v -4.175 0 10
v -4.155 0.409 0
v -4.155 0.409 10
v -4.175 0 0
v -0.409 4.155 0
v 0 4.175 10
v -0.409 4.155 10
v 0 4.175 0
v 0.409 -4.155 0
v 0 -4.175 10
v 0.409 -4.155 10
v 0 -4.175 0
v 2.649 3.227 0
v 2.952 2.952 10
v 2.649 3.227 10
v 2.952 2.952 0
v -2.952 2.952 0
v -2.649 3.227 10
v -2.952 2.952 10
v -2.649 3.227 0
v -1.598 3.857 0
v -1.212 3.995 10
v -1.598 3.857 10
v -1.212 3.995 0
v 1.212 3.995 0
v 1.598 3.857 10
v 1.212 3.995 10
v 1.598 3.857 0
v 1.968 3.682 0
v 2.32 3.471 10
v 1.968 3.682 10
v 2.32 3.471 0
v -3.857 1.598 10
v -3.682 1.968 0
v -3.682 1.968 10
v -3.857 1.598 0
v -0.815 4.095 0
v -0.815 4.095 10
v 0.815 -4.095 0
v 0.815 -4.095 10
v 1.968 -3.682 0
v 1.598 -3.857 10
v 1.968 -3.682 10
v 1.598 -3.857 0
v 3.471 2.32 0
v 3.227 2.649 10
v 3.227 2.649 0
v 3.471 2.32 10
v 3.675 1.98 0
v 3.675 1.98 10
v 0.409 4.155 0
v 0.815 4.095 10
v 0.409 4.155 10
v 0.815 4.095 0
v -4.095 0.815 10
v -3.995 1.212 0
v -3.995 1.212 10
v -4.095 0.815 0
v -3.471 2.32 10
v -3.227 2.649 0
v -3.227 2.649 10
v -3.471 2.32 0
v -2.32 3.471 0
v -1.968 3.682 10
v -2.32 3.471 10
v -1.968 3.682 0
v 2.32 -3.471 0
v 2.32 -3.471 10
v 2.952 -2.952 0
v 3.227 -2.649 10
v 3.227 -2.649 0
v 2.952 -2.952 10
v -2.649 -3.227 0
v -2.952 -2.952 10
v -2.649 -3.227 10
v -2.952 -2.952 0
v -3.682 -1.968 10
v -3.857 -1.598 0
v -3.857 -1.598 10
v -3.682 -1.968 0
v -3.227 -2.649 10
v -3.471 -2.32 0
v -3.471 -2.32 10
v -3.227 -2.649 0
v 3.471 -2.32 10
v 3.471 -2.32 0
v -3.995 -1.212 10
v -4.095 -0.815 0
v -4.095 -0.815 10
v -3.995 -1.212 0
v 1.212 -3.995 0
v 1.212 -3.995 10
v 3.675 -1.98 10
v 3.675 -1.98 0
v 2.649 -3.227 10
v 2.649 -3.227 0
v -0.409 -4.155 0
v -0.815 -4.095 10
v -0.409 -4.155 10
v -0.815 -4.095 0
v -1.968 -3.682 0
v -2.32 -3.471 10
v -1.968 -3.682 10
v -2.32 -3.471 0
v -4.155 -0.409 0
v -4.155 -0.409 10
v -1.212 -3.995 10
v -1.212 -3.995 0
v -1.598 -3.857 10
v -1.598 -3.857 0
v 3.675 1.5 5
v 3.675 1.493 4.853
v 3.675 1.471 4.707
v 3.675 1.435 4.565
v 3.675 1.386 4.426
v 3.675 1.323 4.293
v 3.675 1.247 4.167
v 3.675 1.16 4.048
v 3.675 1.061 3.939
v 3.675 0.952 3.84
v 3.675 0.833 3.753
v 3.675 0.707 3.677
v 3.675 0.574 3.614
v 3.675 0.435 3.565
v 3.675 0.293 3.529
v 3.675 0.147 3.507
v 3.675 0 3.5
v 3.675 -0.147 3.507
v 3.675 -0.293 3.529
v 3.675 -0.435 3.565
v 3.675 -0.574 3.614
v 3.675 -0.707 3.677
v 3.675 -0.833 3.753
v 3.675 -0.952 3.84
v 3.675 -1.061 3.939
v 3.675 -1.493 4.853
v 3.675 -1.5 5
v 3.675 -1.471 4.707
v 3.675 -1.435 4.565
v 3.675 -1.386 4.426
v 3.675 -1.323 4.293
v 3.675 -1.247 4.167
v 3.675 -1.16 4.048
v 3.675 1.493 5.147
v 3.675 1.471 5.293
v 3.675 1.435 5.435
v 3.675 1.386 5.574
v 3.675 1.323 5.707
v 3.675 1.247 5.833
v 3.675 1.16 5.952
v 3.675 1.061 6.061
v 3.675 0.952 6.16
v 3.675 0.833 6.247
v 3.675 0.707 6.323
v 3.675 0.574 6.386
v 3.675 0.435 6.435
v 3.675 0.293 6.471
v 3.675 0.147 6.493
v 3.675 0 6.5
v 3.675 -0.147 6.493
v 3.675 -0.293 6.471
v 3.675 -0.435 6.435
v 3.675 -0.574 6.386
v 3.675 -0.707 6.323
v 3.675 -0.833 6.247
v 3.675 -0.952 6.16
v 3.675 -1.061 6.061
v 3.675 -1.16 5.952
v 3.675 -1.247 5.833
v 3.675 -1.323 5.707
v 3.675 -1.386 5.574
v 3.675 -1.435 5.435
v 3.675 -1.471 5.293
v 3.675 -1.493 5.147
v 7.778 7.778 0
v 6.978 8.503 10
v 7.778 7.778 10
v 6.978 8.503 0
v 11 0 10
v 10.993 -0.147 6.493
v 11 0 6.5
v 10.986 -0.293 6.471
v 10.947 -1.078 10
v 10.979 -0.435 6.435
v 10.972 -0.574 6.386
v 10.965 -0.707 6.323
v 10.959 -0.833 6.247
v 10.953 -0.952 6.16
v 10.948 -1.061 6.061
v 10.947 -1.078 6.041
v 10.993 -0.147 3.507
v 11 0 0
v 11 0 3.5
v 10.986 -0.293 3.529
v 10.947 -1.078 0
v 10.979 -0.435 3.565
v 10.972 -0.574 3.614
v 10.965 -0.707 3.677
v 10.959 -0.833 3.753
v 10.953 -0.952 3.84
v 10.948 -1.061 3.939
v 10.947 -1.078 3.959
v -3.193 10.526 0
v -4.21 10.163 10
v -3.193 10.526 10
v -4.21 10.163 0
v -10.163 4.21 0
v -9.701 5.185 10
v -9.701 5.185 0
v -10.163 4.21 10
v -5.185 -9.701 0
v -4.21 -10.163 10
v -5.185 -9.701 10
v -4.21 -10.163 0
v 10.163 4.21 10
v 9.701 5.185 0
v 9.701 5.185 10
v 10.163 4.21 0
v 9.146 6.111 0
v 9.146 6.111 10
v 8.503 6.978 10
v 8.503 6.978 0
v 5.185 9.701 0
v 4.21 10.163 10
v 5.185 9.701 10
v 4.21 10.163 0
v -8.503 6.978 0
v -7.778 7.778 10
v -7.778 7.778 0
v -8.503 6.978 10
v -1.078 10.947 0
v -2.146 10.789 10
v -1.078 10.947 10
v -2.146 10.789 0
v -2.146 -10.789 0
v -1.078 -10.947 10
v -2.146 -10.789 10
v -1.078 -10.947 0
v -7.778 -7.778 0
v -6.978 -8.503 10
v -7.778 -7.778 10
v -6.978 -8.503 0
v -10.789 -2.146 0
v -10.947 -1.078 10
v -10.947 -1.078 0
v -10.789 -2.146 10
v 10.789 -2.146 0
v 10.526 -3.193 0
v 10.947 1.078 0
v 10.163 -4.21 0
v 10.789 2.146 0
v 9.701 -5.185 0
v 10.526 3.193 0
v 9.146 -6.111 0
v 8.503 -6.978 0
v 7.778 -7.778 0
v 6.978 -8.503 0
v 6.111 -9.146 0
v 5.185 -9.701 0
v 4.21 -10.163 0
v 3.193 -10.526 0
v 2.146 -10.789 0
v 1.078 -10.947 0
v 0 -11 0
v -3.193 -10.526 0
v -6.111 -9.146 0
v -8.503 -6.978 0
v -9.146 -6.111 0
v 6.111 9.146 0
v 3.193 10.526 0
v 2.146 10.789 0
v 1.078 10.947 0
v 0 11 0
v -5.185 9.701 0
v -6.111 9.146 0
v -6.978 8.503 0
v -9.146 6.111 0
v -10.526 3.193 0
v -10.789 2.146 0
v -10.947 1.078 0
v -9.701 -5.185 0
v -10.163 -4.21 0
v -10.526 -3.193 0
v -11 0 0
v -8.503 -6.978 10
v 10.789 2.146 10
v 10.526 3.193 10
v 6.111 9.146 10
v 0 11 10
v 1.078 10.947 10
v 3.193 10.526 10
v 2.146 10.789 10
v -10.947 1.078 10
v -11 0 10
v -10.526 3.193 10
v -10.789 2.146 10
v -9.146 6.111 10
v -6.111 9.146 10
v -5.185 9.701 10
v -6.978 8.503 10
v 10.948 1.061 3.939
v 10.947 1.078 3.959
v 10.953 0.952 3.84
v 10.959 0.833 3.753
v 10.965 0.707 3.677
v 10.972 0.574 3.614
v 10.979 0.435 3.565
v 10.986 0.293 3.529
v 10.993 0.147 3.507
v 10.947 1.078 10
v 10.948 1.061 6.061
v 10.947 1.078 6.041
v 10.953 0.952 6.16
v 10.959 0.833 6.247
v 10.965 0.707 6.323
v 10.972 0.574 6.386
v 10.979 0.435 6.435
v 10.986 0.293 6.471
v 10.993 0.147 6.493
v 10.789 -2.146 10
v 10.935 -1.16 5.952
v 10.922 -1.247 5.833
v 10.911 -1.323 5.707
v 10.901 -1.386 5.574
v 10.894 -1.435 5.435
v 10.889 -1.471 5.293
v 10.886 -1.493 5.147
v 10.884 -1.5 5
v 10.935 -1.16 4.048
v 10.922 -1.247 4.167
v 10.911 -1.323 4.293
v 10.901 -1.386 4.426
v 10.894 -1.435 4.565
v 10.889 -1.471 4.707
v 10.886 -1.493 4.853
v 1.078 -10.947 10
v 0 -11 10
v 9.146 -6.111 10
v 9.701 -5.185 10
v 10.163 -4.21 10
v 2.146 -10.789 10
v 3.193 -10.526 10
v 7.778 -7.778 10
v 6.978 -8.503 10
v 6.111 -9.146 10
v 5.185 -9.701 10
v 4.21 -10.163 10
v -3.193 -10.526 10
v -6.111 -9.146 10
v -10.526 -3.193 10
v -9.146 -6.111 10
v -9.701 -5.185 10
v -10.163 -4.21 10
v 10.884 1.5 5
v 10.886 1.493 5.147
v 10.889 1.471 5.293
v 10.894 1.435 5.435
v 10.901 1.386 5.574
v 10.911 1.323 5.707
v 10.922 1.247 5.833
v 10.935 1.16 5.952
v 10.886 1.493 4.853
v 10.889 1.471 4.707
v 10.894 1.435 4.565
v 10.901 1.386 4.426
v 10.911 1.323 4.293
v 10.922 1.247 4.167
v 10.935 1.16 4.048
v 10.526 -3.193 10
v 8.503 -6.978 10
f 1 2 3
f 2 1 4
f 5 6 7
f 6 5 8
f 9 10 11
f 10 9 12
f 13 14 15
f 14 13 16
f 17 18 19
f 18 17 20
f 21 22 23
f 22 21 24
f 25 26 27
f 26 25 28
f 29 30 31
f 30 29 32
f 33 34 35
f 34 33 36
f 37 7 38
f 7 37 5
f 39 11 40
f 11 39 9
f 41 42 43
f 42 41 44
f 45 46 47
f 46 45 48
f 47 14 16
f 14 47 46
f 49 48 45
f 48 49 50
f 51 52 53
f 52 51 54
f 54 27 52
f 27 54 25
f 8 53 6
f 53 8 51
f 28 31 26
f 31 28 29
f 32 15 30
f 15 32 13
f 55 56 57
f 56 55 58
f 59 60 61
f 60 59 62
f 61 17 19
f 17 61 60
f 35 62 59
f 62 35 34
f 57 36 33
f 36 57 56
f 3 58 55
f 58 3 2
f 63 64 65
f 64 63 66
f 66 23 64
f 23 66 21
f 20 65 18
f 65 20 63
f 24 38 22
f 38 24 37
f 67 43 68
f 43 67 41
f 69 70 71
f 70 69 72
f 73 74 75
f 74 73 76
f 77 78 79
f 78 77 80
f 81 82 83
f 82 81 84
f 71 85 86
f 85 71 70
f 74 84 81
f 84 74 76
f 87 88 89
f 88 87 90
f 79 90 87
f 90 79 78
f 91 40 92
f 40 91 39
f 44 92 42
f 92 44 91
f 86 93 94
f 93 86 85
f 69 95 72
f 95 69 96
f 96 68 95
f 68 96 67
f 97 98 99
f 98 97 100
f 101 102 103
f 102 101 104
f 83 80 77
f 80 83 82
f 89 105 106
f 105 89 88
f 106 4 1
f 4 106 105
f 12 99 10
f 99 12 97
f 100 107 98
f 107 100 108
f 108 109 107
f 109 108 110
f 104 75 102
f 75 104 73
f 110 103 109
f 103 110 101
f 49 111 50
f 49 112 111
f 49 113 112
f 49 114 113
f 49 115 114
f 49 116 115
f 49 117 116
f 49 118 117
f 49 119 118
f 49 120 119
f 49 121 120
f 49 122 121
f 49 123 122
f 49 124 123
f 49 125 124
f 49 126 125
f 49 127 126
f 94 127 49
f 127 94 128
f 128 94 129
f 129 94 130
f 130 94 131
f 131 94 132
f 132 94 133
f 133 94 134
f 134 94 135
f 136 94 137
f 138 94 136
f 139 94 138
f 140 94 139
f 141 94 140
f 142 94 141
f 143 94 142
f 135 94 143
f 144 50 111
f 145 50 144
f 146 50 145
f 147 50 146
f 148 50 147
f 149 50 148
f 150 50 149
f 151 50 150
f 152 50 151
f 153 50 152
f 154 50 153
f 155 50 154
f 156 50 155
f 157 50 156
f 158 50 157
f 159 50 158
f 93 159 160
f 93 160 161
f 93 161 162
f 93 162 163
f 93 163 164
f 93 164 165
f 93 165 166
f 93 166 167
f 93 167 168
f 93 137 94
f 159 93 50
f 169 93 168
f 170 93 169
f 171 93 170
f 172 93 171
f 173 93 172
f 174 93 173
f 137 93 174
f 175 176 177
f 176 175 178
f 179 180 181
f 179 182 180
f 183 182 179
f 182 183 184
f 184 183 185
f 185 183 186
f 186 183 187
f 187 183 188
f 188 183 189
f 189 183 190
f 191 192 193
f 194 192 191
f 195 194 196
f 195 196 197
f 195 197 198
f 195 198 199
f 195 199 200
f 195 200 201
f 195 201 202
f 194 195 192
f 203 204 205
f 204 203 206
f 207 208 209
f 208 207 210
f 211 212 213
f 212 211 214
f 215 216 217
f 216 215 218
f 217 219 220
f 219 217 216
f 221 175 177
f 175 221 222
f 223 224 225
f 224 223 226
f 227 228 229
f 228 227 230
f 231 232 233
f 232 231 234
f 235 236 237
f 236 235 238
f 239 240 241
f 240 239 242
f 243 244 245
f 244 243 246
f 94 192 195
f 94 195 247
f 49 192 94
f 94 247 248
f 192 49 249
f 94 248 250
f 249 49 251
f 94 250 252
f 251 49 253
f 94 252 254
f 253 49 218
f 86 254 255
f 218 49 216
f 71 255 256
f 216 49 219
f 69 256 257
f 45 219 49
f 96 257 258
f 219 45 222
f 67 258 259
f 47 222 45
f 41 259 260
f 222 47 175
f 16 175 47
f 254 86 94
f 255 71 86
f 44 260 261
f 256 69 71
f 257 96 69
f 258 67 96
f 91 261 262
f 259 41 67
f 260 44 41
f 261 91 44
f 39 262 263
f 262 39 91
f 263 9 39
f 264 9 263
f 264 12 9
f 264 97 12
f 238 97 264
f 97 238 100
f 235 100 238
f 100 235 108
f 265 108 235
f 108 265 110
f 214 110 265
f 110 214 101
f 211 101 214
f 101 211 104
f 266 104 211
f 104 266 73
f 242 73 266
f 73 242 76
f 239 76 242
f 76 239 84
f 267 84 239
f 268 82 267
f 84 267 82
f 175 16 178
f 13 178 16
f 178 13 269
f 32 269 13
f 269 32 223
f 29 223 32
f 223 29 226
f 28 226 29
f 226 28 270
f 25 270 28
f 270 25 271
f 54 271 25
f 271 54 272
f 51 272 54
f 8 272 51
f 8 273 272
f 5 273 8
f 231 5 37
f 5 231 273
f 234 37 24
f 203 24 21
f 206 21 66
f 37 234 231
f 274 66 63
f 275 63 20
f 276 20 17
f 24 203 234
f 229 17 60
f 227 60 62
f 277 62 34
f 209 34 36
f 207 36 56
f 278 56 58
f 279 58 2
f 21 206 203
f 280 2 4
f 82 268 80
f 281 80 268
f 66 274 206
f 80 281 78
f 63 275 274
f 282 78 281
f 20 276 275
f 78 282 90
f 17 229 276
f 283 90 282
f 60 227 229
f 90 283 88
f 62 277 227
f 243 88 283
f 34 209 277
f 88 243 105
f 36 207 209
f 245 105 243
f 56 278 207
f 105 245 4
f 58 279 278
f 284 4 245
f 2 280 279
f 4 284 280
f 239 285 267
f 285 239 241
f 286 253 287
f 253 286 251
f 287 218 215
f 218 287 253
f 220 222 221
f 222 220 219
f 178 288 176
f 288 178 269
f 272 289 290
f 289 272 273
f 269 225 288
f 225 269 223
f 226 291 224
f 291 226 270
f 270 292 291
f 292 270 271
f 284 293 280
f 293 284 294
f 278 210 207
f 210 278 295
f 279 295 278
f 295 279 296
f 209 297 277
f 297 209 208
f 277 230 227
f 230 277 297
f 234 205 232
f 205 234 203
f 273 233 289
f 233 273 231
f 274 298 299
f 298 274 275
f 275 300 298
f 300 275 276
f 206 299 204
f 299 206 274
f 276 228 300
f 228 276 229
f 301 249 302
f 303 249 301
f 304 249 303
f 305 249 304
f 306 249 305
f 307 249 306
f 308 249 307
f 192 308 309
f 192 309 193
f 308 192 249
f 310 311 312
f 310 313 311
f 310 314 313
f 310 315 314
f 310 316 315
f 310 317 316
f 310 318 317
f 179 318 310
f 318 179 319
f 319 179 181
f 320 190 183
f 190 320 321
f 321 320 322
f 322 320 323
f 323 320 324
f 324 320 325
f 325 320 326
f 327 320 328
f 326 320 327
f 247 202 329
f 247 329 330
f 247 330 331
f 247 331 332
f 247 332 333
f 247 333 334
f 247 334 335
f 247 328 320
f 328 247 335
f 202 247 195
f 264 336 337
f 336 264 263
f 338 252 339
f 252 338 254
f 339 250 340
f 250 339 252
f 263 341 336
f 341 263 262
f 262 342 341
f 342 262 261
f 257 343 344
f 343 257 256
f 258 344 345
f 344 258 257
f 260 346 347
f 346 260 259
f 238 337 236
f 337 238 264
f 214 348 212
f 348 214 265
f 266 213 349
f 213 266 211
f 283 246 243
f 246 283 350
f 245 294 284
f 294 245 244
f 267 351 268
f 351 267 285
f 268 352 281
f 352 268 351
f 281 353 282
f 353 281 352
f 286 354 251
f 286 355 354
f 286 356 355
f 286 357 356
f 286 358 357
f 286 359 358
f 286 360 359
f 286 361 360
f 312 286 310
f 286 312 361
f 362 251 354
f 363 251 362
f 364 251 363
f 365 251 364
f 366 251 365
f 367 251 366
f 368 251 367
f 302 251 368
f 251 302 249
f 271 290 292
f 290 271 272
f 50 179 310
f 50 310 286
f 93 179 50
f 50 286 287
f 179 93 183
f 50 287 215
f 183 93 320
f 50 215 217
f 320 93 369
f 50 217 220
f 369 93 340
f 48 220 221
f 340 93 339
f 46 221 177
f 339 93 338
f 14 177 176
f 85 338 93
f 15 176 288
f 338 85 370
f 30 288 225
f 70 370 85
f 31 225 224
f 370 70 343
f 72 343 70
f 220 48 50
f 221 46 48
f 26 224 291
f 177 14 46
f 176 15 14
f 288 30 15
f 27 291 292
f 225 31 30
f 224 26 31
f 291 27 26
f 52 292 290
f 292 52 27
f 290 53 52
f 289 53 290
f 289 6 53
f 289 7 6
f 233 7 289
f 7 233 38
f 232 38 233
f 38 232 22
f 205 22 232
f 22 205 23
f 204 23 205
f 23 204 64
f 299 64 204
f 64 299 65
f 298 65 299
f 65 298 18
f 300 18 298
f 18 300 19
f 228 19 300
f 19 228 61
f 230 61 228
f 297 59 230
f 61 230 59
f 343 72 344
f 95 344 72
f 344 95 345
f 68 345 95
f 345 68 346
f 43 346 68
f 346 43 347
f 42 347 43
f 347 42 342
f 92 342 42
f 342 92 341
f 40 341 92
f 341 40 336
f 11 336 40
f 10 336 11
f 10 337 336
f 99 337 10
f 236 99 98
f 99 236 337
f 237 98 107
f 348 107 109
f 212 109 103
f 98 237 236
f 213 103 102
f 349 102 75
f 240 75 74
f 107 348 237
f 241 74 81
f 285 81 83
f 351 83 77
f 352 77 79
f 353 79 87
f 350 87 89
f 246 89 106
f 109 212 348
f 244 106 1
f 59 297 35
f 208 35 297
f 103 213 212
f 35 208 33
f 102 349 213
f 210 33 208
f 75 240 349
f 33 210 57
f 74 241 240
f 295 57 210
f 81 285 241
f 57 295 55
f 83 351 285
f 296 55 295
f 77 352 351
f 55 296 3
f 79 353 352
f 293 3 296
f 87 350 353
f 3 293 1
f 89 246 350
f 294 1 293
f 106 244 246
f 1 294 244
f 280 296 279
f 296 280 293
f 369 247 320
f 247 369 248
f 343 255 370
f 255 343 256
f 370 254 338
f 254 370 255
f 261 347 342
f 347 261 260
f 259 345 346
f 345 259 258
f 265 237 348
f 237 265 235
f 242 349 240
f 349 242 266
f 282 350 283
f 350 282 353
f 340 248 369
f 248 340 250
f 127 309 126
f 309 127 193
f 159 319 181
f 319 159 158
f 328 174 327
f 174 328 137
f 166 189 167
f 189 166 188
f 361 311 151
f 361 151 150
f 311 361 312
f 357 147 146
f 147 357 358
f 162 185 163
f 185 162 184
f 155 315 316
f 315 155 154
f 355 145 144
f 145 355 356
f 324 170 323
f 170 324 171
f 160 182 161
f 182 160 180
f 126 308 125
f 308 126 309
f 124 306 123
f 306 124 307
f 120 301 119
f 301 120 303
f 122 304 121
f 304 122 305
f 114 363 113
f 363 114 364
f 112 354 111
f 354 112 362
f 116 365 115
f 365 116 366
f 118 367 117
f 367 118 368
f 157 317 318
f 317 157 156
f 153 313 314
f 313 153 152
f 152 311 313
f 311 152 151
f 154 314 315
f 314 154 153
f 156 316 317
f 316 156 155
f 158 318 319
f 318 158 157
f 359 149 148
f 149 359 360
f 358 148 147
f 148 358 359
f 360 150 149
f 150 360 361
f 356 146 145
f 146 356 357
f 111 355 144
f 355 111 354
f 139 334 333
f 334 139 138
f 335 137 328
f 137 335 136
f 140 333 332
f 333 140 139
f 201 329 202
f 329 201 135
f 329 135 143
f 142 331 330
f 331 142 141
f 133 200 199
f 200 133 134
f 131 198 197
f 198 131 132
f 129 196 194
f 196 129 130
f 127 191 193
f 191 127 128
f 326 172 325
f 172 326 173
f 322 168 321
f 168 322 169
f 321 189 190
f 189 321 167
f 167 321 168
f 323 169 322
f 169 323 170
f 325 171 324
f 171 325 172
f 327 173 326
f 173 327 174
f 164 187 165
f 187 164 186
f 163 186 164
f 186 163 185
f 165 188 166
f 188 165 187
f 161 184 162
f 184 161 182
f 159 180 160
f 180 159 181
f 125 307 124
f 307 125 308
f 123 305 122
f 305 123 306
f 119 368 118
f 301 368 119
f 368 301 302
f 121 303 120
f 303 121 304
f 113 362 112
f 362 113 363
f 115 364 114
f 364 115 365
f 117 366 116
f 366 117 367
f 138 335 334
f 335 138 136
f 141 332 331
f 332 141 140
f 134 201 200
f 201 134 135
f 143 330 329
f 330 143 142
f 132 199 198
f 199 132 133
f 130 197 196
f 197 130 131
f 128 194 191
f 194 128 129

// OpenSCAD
// Gen-CK — shaft collar with D-flat bore (set screw bears on the flat); print x4
include <parameters.scad>;
$fn = 64;
// D-flat keyed bore: flat faces +X (angle 0 = magnet pocket 0 = index notch)
module dflat_bore(h) {
    intersection() {
        cylinder(d=shaft_bore, h=h);
        translate([-shaft_bore, -shaft_bore, 0]) cube([shaft_bore + dflat_x, 2*shaft_bore, h]);
    }
}

od = 22; h = collar_h; set_d = 3.0;
difference() {
    cylinder(d=od, h=h);
    translate([0, 0, -0.1]) dflat_bore(h + 0.2);
    translate([0, 0, h/2]) rotate([0, 90, 0]) cylinder(d=set_d, h=od);
}
